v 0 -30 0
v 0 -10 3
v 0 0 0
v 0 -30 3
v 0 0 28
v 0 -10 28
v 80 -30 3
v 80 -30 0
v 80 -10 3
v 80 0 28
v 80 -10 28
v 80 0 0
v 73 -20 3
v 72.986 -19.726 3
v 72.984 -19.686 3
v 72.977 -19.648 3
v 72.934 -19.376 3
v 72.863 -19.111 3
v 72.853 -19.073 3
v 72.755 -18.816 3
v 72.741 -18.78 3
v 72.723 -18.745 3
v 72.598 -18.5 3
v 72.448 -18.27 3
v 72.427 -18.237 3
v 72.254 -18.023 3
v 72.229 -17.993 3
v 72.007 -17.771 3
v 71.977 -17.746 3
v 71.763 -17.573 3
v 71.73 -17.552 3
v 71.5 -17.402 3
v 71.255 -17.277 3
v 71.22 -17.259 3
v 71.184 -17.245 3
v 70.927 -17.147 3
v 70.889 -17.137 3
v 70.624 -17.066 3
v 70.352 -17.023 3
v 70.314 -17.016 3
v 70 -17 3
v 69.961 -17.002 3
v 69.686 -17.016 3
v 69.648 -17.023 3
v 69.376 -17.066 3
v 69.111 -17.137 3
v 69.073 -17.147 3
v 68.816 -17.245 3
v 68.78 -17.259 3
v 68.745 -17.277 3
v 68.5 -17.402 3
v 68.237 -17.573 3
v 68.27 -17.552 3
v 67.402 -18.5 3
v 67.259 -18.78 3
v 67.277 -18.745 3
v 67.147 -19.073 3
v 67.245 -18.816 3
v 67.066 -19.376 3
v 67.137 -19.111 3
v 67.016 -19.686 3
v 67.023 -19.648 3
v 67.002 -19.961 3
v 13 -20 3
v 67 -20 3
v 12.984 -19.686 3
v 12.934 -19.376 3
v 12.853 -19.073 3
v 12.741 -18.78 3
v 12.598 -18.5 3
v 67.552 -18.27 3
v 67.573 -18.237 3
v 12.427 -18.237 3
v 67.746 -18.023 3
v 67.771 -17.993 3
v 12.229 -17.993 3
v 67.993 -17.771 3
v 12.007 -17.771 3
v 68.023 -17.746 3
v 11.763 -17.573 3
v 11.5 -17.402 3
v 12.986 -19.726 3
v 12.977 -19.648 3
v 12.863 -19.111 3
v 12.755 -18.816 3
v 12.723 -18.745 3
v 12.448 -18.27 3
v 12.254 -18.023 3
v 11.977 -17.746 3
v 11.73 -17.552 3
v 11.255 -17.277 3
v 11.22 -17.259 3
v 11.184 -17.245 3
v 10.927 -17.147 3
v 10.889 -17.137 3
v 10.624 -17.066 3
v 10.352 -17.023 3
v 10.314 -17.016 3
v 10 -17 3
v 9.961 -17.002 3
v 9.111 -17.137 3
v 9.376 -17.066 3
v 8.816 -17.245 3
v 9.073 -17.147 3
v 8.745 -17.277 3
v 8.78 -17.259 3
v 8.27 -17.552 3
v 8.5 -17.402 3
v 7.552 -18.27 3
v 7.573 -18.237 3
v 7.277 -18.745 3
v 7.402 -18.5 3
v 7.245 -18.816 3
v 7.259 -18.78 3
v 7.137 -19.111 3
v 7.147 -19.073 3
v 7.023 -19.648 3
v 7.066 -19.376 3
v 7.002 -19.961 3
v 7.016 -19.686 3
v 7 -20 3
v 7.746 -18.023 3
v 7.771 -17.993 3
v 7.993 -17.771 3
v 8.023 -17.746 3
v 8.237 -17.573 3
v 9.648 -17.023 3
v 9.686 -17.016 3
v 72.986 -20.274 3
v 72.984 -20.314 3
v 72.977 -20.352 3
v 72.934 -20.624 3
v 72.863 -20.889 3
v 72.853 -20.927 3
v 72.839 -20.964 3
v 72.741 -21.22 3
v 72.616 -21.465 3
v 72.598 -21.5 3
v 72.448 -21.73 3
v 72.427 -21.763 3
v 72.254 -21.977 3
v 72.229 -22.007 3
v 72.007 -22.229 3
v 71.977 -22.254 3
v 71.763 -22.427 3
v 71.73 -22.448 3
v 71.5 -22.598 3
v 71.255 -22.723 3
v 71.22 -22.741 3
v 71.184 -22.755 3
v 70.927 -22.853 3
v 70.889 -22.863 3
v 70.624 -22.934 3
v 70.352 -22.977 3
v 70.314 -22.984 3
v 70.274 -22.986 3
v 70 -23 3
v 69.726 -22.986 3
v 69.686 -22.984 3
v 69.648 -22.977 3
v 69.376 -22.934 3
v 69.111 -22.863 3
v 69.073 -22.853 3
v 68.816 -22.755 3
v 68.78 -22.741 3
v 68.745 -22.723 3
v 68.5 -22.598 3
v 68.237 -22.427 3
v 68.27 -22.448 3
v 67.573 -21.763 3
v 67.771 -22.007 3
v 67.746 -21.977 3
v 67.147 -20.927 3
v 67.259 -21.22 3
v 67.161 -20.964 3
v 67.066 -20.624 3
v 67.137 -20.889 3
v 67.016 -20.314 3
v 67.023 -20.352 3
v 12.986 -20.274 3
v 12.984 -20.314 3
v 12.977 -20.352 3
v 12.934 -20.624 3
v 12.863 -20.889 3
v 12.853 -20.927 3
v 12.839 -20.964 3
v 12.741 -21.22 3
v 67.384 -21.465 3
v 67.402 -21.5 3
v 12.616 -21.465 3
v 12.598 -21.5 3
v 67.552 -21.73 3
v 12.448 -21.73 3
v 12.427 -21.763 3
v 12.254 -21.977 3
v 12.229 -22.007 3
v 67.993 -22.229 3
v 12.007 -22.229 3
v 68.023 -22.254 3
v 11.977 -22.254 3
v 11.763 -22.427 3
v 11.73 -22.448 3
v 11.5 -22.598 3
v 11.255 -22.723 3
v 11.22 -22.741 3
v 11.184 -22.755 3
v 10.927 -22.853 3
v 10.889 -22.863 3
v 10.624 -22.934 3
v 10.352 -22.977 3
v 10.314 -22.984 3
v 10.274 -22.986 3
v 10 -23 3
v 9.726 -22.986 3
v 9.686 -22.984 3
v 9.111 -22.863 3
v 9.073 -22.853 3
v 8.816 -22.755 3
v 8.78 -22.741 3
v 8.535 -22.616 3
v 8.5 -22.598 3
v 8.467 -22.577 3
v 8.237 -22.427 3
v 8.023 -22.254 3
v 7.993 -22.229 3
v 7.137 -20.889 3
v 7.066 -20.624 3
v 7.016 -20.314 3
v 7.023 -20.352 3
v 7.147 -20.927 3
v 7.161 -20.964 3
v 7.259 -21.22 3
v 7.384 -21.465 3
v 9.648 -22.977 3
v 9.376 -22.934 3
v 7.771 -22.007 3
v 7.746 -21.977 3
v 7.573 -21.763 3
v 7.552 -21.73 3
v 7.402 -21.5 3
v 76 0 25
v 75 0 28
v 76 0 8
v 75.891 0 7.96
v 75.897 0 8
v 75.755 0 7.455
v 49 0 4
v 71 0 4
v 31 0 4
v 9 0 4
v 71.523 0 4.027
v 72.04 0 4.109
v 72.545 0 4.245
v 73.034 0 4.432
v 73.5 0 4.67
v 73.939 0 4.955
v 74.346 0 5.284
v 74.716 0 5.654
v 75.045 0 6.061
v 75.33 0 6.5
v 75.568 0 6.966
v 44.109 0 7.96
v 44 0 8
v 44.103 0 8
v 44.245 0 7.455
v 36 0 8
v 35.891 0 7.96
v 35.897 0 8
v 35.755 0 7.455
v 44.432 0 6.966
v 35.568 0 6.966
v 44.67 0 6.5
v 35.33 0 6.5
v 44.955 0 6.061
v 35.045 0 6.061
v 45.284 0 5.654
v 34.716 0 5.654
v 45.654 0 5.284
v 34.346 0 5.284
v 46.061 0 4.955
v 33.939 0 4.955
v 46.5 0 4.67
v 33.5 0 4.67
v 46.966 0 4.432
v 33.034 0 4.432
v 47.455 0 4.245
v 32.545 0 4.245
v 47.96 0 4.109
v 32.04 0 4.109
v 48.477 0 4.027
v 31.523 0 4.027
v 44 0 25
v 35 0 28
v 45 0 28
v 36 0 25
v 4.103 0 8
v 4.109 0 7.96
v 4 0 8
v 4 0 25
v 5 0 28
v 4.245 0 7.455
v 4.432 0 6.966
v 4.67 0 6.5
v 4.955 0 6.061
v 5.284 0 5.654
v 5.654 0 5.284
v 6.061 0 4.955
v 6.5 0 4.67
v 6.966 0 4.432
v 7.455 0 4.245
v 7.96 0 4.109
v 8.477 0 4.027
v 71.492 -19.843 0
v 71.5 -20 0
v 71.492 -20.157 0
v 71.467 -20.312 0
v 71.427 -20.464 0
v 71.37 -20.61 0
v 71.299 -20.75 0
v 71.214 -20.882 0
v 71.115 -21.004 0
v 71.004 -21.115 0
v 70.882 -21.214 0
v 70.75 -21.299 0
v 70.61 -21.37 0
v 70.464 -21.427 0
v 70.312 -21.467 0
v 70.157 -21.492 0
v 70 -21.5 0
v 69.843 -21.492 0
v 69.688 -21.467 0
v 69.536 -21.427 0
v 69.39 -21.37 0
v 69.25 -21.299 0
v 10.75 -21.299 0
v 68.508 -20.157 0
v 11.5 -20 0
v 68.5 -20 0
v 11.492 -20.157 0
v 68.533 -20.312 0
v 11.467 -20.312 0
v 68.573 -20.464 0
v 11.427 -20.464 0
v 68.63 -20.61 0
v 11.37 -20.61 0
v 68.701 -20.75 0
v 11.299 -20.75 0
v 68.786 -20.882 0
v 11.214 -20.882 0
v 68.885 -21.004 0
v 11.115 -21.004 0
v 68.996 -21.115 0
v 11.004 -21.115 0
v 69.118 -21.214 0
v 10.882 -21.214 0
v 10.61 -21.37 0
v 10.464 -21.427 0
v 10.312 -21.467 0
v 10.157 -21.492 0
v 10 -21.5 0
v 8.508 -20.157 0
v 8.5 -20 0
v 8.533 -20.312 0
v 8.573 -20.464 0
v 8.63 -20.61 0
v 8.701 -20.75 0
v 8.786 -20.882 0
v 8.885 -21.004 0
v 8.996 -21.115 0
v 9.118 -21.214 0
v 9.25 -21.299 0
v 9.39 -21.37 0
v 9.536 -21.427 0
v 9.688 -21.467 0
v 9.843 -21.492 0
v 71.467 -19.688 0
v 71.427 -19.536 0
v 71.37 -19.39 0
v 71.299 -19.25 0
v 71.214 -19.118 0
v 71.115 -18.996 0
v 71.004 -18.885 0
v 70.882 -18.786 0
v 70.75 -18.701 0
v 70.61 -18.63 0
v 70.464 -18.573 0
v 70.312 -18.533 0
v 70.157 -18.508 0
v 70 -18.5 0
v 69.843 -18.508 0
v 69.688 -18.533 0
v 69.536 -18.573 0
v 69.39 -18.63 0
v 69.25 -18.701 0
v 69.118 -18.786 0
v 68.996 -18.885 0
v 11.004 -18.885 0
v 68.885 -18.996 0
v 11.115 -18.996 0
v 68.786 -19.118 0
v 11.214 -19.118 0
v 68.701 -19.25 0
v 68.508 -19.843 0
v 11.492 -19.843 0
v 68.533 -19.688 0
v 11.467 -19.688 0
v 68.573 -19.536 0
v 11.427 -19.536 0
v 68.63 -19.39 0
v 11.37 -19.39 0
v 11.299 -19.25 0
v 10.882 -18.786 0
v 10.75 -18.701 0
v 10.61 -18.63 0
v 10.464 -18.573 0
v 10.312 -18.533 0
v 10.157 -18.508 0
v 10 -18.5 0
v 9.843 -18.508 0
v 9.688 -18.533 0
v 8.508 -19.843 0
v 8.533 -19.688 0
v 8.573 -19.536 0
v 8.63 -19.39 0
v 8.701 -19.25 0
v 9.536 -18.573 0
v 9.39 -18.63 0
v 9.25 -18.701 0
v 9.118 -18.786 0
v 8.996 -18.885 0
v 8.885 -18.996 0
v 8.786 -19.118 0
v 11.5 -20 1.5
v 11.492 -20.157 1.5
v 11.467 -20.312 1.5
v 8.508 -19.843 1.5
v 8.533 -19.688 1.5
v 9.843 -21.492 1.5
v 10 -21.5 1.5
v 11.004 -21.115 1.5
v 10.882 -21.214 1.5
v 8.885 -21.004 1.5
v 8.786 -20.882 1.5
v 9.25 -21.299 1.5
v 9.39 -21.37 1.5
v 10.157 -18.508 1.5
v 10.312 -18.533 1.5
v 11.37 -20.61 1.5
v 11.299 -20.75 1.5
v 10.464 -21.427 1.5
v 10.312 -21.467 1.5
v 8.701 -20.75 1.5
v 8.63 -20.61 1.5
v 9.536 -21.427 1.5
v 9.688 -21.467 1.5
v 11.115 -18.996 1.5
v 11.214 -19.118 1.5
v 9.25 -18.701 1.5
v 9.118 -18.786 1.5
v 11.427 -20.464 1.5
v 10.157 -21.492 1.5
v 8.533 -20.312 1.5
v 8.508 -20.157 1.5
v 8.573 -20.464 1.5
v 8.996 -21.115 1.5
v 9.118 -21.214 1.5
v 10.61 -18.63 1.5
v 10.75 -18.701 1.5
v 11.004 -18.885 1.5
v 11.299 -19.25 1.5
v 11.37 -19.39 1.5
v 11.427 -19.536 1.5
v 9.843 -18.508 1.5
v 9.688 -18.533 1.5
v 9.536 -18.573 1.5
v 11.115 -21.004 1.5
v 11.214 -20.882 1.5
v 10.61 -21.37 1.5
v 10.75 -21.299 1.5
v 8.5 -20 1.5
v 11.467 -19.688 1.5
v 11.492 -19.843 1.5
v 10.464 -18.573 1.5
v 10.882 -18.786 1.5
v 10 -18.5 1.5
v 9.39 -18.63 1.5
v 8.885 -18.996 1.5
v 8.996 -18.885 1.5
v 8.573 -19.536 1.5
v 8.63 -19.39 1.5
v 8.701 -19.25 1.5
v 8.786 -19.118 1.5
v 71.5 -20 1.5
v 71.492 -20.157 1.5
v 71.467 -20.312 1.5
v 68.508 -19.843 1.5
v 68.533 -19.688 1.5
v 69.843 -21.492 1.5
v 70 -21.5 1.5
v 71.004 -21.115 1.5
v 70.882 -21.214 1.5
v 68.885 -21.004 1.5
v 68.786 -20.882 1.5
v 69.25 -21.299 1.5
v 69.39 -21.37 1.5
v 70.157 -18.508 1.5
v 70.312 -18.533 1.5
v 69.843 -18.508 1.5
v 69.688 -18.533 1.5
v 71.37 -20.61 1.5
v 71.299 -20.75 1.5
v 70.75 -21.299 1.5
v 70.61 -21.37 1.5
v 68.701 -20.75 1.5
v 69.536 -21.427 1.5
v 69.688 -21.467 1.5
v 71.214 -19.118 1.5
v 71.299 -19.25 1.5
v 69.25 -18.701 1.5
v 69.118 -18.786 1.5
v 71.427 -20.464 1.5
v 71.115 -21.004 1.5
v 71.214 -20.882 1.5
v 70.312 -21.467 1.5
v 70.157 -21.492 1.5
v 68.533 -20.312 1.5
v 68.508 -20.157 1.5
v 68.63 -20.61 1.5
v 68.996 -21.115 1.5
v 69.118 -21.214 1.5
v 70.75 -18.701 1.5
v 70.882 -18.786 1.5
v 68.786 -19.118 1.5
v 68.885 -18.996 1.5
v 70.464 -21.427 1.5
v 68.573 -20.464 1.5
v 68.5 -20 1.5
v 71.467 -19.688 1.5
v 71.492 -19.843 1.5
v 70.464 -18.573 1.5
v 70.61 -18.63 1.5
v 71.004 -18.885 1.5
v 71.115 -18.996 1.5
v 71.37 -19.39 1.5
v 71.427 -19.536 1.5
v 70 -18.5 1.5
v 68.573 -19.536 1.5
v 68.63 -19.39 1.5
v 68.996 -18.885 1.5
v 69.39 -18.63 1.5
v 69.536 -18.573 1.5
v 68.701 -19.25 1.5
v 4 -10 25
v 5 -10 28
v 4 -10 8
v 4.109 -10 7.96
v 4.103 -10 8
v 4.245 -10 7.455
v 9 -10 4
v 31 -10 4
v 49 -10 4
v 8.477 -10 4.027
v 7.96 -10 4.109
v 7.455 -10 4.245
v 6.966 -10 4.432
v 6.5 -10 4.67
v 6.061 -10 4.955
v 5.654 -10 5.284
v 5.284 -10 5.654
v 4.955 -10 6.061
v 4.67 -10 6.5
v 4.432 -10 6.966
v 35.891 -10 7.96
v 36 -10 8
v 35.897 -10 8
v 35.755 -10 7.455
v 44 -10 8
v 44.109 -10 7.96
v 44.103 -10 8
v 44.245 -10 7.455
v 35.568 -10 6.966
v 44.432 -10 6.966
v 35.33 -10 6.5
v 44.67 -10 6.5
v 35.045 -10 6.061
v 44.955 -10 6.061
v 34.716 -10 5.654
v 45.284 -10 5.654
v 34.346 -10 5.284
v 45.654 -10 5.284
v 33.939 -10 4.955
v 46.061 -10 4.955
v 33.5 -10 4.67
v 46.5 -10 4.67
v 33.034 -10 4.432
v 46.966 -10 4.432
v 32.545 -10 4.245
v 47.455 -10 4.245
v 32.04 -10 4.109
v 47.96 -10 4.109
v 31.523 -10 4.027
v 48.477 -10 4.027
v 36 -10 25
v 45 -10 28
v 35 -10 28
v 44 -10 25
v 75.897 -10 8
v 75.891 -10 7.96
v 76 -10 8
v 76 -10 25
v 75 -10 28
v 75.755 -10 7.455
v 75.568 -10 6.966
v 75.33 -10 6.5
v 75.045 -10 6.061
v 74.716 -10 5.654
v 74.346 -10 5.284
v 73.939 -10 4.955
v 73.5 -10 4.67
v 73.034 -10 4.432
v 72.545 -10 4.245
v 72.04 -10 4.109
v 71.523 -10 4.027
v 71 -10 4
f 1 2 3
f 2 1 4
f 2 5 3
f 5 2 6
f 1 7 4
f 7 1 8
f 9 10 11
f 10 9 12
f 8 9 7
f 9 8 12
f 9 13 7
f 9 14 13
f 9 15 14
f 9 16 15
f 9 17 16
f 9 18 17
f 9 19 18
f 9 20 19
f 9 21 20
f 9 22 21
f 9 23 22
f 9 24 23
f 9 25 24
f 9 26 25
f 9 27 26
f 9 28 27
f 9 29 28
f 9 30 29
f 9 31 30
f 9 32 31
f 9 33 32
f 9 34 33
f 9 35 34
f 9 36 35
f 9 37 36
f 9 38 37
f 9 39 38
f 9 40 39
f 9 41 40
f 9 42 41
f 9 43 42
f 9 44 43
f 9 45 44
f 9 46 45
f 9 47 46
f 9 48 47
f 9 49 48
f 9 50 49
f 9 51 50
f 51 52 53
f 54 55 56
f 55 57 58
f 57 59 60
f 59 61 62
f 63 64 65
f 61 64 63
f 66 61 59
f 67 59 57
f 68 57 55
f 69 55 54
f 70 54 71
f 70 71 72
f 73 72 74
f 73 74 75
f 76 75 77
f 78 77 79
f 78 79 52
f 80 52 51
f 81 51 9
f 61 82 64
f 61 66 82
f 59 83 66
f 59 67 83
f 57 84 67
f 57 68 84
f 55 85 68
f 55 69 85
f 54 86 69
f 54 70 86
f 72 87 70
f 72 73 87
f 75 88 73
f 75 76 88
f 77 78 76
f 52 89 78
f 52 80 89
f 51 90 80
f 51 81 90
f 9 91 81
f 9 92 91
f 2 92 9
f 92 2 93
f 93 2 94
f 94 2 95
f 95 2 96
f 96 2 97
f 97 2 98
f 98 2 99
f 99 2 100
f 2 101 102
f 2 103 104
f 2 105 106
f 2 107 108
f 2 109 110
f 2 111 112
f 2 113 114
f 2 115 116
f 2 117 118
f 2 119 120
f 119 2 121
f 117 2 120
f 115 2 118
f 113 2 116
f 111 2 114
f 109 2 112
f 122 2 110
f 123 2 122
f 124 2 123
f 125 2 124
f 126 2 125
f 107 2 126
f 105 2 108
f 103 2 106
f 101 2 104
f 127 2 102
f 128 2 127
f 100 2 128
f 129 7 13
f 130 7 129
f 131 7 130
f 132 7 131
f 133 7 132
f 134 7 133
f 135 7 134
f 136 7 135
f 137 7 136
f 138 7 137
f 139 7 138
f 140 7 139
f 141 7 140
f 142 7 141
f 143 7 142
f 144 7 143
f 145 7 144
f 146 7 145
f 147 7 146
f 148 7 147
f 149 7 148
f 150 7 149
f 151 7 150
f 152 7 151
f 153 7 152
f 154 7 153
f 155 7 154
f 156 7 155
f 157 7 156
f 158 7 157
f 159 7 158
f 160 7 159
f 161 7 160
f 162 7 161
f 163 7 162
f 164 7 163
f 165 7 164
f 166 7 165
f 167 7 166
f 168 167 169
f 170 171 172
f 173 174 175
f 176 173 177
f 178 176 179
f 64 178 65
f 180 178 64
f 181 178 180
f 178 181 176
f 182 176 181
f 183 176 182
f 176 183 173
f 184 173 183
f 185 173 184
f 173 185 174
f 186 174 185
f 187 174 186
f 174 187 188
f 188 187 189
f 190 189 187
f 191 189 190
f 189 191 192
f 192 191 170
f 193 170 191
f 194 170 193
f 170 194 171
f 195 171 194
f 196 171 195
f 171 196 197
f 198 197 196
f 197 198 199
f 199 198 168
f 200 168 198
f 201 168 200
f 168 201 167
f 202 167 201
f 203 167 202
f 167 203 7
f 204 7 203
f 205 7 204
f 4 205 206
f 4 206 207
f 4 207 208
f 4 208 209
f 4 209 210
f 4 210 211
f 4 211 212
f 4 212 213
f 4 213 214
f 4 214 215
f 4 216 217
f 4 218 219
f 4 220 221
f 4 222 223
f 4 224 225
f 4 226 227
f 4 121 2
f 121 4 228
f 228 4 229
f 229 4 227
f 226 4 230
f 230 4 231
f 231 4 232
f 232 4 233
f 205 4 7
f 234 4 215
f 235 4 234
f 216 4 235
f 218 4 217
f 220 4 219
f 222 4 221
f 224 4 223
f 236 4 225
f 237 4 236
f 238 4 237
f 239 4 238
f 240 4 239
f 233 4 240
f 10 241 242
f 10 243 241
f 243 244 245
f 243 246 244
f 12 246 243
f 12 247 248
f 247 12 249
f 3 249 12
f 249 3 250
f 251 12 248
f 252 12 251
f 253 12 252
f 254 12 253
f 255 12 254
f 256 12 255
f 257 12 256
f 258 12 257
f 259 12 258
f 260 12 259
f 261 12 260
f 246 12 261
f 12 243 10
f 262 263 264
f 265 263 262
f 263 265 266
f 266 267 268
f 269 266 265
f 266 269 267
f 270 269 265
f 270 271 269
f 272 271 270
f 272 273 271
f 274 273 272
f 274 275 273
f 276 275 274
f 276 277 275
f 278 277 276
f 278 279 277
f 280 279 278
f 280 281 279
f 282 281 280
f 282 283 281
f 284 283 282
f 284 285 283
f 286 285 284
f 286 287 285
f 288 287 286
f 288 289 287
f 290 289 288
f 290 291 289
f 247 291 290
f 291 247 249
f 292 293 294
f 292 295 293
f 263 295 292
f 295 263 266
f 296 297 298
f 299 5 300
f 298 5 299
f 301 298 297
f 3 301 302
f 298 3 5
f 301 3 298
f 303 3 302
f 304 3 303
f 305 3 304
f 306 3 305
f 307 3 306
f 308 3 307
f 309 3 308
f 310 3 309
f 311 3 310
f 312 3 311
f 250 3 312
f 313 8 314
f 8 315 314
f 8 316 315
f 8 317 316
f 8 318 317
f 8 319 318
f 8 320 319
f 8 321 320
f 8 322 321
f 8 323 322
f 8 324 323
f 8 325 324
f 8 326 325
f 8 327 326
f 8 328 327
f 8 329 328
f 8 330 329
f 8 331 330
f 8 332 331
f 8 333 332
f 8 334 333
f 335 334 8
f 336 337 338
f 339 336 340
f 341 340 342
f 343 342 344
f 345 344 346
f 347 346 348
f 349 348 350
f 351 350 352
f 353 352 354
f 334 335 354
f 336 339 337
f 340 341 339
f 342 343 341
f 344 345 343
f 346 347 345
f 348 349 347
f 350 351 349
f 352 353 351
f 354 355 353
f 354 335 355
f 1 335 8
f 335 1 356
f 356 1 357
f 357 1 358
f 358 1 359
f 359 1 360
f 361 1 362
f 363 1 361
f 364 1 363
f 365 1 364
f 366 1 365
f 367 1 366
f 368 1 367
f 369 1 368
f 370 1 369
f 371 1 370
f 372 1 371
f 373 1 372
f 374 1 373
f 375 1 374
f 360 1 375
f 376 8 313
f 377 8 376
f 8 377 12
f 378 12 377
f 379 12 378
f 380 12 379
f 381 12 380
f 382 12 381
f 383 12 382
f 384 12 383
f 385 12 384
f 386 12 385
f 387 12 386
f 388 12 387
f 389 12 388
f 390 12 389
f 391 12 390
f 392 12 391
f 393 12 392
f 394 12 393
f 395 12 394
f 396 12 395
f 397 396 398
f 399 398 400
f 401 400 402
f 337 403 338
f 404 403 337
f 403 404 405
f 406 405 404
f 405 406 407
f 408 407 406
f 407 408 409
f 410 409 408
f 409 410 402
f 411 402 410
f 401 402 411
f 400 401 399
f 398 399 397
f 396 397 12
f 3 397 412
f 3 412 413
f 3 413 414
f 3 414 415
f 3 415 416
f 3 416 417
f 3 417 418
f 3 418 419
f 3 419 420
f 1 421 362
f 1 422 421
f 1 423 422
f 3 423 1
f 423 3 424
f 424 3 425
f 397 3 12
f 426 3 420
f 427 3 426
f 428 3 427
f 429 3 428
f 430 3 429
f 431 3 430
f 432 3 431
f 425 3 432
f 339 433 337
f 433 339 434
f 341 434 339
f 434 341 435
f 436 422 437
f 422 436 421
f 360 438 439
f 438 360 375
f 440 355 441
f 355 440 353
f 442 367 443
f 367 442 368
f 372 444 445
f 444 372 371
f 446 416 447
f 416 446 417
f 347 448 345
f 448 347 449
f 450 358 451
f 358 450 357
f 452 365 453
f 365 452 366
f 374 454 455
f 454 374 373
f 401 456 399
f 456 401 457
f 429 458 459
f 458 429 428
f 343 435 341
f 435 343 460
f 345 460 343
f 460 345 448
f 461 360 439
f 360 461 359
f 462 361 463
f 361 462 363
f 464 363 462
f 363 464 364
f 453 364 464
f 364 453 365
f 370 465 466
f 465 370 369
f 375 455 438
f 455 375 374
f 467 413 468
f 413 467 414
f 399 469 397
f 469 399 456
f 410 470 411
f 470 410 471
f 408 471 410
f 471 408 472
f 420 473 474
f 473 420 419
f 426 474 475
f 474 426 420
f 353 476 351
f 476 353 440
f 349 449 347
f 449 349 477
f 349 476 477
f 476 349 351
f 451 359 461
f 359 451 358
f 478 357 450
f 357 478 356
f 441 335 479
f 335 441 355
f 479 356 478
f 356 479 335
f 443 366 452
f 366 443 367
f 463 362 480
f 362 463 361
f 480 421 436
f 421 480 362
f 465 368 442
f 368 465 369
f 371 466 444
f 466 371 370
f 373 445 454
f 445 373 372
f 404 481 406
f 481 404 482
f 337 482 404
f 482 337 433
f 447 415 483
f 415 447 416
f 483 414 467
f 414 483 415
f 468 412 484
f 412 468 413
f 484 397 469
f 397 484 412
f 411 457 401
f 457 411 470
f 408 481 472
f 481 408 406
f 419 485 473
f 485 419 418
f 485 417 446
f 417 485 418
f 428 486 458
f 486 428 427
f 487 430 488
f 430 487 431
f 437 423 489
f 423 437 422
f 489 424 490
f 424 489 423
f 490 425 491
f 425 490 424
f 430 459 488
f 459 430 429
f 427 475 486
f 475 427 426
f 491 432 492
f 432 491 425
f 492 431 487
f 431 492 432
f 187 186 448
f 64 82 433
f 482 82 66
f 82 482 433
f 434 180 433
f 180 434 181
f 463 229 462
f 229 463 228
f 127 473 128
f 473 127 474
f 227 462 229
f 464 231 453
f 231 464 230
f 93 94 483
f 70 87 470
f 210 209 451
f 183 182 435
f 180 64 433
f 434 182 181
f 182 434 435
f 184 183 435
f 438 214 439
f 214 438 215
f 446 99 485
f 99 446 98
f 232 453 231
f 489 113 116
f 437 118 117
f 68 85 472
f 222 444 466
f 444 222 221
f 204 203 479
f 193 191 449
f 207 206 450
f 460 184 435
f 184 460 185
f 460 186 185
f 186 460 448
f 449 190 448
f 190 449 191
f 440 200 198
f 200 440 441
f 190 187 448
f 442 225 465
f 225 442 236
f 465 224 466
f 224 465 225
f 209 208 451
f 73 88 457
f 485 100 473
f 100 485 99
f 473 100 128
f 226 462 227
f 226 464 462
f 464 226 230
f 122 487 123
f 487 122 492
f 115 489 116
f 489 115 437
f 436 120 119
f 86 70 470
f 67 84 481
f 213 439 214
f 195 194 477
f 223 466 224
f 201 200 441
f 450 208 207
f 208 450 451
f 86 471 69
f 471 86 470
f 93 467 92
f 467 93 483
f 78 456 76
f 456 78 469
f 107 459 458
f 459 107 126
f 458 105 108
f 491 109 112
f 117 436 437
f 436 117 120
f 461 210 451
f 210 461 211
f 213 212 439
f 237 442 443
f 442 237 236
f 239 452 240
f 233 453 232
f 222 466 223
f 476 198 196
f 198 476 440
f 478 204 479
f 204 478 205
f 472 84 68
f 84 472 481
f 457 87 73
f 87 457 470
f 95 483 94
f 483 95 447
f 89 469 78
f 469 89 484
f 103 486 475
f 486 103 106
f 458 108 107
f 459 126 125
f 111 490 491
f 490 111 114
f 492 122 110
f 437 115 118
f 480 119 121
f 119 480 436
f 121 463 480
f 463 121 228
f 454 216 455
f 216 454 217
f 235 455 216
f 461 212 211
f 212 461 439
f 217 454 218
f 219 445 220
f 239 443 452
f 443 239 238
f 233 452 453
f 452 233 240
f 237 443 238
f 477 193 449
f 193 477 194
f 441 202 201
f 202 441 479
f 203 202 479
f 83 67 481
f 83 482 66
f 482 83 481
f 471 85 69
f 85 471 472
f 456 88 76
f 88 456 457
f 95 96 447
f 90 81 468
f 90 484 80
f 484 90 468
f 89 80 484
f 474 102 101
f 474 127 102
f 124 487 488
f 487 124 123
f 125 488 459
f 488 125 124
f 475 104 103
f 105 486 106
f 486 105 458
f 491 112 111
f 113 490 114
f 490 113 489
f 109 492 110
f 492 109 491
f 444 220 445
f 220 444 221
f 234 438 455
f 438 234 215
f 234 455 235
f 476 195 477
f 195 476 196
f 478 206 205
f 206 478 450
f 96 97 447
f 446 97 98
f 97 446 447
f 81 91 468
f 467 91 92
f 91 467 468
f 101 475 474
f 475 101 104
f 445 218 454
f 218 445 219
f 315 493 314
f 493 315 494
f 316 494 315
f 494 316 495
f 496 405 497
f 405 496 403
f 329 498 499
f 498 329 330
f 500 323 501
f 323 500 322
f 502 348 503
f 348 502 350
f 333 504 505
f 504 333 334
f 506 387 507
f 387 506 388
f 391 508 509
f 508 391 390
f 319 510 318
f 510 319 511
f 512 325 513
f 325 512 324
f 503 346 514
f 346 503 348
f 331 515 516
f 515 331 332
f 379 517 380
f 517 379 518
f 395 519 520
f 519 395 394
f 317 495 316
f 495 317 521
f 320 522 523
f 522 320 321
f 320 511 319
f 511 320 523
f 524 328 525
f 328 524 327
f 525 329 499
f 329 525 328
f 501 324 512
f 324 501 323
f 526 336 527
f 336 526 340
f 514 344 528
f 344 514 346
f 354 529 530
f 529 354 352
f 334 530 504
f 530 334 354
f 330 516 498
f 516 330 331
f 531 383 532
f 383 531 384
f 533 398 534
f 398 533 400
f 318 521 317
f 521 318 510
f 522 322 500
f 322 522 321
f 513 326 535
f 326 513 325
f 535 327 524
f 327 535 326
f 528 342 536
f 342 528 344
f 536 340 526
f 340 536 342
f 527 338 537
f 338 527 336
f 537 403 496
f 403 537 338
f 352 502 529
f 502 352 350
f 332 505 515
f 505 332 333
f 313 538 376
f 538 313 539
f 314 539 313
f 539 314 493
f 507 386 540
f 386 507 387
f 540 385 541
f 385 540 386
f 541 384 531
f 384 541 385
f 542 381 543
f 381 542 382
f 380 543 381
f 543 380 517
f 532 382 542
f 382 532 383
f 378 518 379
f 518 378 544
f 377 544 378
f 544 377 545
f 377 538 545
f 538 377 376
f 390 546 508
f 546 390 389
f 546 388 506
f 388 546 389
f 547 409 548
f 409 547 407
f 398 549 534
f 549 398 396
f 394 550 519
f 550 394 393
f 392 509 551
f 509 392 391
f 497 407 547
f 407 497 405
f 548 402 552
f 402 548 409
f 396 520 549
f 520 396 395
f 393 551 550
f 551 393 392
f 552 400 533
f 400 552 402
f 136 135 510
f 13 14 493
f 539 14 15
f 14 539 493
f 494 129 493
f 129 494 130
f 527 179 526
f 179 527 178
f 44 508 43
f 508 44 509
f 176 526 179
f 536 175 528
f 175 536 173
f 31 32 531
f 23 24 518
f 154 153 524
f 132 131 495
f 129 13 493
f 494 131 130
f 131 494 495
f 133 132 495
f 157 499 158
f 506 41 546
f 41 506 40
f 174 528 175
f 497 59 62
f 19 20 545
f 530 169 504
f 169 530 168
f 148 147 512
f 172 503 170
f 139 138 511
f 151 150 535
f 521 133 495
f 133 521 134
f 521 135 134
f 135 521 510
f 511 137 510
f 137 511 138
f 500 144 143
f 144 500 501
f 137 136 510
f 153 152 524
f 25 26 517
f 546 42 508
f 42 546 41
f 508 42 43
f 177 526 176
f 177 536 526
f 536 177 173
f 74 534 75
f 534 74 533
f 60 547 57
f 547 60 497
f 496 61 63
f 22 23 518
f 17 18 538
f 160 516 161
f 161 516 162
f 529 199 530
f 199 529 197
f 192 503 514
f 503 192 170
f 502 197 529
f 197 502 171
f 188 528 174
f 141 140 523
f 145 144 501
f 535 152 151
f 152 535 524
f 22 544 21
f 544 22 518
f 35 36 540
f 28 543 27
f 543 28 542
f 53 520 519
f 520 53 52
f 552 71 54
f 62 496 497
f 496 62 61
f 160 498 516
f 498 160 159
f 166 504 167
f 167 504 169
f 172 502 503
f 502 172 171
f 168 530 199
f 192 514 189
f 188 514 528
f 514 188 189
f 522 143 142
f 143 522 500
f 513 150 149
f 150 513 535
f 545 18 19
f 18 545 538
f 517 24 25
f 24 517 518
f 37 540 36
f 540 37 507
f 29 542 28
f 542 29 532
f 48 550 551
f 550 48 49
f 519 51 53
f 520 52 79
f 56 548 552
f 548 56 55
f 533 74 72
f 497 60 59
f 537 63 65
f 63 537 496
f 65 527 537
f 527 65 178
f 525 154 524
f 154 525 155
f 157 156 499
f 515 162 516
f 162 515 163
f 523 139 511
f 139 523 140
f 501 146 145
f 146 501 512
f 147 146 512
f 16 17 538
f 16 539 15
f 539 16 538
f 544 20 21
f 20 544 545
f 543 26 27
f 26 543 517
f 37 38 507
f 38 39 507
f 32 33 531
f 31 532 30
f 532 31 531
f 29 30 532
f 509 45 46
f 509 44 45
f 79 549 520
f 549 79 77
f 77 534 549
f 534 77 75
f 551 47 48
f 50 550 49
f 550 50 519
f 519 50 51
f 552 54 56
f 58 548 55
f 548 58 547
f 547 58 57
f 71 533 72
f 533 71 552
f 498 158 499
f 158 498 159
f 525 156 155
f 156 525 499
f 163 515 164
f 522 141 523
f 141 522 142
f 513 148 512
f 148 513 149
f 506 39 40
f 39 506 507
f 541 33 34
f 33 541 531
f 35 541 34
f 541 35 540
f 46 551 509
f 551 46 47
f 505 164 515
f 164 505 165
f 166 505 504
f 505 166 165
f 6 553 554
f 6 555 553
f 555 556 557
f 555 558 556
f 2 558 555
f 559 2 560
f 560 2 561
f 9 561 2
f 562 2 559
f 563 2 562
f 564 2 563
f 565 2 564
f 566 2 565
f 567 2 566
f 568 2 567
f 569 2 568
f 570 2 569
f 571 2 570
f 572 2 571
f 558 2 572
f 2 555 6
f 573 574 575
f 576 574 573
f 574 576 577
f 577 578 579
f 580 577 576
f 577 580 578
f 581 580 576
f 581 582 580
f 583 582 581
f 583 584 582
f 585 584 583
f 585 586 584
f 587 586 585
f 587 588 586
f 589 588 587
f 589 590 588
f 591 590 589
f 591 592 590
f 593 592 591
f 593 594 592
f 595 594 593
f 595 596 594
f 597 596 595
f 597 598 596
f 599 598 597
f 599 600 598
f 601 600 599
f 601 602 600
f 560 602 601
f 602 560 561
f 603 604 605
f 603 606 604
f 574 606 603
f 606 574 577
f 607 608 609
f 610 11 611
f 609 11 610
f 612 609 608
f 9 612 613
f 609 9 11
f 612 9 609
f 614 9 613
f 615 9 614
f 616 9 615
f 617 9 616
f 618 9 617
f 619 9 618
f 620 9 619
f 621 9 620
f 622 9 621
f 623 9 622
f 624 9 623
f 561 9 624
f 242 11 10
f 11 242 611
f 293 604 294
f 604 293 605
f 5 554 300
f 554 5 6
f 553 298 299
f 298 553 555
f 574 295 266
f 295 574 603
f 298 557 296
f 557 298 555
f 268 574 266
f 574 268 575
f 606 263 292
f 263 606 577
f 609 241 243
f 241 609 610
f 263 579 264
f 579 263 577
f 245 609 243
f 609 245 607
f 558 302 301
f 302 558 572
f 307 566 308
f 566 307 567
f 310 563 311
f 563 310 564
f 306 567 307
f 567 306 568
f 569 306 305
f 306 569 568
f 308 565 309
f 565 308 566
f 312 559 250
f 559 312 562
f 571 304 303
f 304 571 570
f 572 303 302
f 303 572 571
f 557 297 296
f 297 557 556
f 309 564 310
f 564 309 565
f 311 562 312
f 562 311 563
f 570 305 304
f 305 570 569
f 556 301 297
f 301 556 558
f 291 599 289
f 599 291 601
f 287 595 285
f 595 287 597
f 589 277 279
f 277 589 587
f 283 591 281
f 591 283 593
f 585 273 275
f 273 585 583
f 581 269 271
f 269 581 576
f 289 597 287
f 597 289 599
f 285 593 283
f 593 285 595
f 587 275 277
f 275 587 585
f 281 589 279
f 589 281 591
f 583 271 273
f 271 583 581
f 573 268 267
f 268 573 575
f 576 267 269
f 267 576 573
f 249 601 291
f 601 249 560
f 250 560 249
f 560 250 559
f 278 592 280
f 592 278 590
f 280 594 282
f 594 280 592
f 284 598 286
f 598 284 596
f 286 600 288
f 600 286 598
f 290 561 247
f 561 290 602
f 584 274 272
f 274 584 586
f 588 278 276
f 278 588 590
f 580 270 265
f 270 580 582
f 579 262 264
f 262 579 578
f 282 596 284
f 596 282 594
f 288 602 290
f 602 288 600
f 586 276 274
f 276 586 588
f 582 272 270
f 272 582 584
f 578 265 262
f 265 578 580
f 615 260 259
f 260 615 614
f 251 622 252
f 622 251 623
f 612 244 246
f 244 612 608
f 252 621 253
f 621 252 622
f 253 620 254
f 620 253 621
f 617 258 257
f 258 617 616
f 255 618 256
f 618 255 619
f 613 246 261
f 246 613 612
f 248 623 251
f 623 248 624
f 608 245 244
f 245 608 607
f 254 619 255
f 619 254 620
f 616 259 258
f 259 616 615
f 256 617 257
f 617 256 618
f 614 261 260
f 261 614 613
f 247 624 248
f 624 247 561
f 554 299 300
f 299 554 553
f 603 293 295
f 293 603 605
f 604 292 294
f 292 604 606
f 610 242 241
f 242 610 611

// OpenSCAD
$fn = 60;

rotate([90, 0, 0]) {
 difference () {
   cube([80, 3, 30]);
   translate([10, 4, 20]) rotate([90, 0, 0]) cylinder(5, r=1.5);
   translate([10, 1.5, 20]) rotate([-90, 0, 0]) cylinder(2, r1=1.5, r2=3.5);
   translate([70, 4, 20]) rotate([90, 0, 0]) cylinder(5, r=1.5);
   translate([70, 1.5, 20]) rotate([-90, 0, 0]) cylinder(2, r1=1.5, r2=3.5);
 

 
   }


difference () {
  
  translate([0, 3, 0]) cube([80, 25, 10]);
  translate([4, 8, -1]) cube([32, 21, 27]);

  translate([80-32-4, 8, -1]) cube([32, 21, 27]);

  translate([9, 9, -1]) cylinder(12, r=5);
  translate([31, 9, -1]) cylinder(12, r=5);
  translate([9, 4, -1]) cube([22, 6, 12]);
  
  translate([80-31, 9, -1]) cylinder(12, r=5);
  translate([80-9, 9, -1]) cylinder(12, r=5);
  translate([49, 4, -1]) cube([22, 6, 12]);

}



translate([4, 25, 0]) linear_extrude(height=10) polygon([[0,0], [0, 3], [1,3]]);
translate([36, 25, 0]) linear_extrude(height=10) polygon([[0,0], [0, 3], [-1,3]]);


translate([80-32-4, 25, 0]) linear_extrude(height=10) polygon([[0,0], [0, 3], [1,3]]);
translate([76, 25, 0]) linear_extrude(height=10) polygon([[0,0], [0, 3], [-1,3]]);



}
